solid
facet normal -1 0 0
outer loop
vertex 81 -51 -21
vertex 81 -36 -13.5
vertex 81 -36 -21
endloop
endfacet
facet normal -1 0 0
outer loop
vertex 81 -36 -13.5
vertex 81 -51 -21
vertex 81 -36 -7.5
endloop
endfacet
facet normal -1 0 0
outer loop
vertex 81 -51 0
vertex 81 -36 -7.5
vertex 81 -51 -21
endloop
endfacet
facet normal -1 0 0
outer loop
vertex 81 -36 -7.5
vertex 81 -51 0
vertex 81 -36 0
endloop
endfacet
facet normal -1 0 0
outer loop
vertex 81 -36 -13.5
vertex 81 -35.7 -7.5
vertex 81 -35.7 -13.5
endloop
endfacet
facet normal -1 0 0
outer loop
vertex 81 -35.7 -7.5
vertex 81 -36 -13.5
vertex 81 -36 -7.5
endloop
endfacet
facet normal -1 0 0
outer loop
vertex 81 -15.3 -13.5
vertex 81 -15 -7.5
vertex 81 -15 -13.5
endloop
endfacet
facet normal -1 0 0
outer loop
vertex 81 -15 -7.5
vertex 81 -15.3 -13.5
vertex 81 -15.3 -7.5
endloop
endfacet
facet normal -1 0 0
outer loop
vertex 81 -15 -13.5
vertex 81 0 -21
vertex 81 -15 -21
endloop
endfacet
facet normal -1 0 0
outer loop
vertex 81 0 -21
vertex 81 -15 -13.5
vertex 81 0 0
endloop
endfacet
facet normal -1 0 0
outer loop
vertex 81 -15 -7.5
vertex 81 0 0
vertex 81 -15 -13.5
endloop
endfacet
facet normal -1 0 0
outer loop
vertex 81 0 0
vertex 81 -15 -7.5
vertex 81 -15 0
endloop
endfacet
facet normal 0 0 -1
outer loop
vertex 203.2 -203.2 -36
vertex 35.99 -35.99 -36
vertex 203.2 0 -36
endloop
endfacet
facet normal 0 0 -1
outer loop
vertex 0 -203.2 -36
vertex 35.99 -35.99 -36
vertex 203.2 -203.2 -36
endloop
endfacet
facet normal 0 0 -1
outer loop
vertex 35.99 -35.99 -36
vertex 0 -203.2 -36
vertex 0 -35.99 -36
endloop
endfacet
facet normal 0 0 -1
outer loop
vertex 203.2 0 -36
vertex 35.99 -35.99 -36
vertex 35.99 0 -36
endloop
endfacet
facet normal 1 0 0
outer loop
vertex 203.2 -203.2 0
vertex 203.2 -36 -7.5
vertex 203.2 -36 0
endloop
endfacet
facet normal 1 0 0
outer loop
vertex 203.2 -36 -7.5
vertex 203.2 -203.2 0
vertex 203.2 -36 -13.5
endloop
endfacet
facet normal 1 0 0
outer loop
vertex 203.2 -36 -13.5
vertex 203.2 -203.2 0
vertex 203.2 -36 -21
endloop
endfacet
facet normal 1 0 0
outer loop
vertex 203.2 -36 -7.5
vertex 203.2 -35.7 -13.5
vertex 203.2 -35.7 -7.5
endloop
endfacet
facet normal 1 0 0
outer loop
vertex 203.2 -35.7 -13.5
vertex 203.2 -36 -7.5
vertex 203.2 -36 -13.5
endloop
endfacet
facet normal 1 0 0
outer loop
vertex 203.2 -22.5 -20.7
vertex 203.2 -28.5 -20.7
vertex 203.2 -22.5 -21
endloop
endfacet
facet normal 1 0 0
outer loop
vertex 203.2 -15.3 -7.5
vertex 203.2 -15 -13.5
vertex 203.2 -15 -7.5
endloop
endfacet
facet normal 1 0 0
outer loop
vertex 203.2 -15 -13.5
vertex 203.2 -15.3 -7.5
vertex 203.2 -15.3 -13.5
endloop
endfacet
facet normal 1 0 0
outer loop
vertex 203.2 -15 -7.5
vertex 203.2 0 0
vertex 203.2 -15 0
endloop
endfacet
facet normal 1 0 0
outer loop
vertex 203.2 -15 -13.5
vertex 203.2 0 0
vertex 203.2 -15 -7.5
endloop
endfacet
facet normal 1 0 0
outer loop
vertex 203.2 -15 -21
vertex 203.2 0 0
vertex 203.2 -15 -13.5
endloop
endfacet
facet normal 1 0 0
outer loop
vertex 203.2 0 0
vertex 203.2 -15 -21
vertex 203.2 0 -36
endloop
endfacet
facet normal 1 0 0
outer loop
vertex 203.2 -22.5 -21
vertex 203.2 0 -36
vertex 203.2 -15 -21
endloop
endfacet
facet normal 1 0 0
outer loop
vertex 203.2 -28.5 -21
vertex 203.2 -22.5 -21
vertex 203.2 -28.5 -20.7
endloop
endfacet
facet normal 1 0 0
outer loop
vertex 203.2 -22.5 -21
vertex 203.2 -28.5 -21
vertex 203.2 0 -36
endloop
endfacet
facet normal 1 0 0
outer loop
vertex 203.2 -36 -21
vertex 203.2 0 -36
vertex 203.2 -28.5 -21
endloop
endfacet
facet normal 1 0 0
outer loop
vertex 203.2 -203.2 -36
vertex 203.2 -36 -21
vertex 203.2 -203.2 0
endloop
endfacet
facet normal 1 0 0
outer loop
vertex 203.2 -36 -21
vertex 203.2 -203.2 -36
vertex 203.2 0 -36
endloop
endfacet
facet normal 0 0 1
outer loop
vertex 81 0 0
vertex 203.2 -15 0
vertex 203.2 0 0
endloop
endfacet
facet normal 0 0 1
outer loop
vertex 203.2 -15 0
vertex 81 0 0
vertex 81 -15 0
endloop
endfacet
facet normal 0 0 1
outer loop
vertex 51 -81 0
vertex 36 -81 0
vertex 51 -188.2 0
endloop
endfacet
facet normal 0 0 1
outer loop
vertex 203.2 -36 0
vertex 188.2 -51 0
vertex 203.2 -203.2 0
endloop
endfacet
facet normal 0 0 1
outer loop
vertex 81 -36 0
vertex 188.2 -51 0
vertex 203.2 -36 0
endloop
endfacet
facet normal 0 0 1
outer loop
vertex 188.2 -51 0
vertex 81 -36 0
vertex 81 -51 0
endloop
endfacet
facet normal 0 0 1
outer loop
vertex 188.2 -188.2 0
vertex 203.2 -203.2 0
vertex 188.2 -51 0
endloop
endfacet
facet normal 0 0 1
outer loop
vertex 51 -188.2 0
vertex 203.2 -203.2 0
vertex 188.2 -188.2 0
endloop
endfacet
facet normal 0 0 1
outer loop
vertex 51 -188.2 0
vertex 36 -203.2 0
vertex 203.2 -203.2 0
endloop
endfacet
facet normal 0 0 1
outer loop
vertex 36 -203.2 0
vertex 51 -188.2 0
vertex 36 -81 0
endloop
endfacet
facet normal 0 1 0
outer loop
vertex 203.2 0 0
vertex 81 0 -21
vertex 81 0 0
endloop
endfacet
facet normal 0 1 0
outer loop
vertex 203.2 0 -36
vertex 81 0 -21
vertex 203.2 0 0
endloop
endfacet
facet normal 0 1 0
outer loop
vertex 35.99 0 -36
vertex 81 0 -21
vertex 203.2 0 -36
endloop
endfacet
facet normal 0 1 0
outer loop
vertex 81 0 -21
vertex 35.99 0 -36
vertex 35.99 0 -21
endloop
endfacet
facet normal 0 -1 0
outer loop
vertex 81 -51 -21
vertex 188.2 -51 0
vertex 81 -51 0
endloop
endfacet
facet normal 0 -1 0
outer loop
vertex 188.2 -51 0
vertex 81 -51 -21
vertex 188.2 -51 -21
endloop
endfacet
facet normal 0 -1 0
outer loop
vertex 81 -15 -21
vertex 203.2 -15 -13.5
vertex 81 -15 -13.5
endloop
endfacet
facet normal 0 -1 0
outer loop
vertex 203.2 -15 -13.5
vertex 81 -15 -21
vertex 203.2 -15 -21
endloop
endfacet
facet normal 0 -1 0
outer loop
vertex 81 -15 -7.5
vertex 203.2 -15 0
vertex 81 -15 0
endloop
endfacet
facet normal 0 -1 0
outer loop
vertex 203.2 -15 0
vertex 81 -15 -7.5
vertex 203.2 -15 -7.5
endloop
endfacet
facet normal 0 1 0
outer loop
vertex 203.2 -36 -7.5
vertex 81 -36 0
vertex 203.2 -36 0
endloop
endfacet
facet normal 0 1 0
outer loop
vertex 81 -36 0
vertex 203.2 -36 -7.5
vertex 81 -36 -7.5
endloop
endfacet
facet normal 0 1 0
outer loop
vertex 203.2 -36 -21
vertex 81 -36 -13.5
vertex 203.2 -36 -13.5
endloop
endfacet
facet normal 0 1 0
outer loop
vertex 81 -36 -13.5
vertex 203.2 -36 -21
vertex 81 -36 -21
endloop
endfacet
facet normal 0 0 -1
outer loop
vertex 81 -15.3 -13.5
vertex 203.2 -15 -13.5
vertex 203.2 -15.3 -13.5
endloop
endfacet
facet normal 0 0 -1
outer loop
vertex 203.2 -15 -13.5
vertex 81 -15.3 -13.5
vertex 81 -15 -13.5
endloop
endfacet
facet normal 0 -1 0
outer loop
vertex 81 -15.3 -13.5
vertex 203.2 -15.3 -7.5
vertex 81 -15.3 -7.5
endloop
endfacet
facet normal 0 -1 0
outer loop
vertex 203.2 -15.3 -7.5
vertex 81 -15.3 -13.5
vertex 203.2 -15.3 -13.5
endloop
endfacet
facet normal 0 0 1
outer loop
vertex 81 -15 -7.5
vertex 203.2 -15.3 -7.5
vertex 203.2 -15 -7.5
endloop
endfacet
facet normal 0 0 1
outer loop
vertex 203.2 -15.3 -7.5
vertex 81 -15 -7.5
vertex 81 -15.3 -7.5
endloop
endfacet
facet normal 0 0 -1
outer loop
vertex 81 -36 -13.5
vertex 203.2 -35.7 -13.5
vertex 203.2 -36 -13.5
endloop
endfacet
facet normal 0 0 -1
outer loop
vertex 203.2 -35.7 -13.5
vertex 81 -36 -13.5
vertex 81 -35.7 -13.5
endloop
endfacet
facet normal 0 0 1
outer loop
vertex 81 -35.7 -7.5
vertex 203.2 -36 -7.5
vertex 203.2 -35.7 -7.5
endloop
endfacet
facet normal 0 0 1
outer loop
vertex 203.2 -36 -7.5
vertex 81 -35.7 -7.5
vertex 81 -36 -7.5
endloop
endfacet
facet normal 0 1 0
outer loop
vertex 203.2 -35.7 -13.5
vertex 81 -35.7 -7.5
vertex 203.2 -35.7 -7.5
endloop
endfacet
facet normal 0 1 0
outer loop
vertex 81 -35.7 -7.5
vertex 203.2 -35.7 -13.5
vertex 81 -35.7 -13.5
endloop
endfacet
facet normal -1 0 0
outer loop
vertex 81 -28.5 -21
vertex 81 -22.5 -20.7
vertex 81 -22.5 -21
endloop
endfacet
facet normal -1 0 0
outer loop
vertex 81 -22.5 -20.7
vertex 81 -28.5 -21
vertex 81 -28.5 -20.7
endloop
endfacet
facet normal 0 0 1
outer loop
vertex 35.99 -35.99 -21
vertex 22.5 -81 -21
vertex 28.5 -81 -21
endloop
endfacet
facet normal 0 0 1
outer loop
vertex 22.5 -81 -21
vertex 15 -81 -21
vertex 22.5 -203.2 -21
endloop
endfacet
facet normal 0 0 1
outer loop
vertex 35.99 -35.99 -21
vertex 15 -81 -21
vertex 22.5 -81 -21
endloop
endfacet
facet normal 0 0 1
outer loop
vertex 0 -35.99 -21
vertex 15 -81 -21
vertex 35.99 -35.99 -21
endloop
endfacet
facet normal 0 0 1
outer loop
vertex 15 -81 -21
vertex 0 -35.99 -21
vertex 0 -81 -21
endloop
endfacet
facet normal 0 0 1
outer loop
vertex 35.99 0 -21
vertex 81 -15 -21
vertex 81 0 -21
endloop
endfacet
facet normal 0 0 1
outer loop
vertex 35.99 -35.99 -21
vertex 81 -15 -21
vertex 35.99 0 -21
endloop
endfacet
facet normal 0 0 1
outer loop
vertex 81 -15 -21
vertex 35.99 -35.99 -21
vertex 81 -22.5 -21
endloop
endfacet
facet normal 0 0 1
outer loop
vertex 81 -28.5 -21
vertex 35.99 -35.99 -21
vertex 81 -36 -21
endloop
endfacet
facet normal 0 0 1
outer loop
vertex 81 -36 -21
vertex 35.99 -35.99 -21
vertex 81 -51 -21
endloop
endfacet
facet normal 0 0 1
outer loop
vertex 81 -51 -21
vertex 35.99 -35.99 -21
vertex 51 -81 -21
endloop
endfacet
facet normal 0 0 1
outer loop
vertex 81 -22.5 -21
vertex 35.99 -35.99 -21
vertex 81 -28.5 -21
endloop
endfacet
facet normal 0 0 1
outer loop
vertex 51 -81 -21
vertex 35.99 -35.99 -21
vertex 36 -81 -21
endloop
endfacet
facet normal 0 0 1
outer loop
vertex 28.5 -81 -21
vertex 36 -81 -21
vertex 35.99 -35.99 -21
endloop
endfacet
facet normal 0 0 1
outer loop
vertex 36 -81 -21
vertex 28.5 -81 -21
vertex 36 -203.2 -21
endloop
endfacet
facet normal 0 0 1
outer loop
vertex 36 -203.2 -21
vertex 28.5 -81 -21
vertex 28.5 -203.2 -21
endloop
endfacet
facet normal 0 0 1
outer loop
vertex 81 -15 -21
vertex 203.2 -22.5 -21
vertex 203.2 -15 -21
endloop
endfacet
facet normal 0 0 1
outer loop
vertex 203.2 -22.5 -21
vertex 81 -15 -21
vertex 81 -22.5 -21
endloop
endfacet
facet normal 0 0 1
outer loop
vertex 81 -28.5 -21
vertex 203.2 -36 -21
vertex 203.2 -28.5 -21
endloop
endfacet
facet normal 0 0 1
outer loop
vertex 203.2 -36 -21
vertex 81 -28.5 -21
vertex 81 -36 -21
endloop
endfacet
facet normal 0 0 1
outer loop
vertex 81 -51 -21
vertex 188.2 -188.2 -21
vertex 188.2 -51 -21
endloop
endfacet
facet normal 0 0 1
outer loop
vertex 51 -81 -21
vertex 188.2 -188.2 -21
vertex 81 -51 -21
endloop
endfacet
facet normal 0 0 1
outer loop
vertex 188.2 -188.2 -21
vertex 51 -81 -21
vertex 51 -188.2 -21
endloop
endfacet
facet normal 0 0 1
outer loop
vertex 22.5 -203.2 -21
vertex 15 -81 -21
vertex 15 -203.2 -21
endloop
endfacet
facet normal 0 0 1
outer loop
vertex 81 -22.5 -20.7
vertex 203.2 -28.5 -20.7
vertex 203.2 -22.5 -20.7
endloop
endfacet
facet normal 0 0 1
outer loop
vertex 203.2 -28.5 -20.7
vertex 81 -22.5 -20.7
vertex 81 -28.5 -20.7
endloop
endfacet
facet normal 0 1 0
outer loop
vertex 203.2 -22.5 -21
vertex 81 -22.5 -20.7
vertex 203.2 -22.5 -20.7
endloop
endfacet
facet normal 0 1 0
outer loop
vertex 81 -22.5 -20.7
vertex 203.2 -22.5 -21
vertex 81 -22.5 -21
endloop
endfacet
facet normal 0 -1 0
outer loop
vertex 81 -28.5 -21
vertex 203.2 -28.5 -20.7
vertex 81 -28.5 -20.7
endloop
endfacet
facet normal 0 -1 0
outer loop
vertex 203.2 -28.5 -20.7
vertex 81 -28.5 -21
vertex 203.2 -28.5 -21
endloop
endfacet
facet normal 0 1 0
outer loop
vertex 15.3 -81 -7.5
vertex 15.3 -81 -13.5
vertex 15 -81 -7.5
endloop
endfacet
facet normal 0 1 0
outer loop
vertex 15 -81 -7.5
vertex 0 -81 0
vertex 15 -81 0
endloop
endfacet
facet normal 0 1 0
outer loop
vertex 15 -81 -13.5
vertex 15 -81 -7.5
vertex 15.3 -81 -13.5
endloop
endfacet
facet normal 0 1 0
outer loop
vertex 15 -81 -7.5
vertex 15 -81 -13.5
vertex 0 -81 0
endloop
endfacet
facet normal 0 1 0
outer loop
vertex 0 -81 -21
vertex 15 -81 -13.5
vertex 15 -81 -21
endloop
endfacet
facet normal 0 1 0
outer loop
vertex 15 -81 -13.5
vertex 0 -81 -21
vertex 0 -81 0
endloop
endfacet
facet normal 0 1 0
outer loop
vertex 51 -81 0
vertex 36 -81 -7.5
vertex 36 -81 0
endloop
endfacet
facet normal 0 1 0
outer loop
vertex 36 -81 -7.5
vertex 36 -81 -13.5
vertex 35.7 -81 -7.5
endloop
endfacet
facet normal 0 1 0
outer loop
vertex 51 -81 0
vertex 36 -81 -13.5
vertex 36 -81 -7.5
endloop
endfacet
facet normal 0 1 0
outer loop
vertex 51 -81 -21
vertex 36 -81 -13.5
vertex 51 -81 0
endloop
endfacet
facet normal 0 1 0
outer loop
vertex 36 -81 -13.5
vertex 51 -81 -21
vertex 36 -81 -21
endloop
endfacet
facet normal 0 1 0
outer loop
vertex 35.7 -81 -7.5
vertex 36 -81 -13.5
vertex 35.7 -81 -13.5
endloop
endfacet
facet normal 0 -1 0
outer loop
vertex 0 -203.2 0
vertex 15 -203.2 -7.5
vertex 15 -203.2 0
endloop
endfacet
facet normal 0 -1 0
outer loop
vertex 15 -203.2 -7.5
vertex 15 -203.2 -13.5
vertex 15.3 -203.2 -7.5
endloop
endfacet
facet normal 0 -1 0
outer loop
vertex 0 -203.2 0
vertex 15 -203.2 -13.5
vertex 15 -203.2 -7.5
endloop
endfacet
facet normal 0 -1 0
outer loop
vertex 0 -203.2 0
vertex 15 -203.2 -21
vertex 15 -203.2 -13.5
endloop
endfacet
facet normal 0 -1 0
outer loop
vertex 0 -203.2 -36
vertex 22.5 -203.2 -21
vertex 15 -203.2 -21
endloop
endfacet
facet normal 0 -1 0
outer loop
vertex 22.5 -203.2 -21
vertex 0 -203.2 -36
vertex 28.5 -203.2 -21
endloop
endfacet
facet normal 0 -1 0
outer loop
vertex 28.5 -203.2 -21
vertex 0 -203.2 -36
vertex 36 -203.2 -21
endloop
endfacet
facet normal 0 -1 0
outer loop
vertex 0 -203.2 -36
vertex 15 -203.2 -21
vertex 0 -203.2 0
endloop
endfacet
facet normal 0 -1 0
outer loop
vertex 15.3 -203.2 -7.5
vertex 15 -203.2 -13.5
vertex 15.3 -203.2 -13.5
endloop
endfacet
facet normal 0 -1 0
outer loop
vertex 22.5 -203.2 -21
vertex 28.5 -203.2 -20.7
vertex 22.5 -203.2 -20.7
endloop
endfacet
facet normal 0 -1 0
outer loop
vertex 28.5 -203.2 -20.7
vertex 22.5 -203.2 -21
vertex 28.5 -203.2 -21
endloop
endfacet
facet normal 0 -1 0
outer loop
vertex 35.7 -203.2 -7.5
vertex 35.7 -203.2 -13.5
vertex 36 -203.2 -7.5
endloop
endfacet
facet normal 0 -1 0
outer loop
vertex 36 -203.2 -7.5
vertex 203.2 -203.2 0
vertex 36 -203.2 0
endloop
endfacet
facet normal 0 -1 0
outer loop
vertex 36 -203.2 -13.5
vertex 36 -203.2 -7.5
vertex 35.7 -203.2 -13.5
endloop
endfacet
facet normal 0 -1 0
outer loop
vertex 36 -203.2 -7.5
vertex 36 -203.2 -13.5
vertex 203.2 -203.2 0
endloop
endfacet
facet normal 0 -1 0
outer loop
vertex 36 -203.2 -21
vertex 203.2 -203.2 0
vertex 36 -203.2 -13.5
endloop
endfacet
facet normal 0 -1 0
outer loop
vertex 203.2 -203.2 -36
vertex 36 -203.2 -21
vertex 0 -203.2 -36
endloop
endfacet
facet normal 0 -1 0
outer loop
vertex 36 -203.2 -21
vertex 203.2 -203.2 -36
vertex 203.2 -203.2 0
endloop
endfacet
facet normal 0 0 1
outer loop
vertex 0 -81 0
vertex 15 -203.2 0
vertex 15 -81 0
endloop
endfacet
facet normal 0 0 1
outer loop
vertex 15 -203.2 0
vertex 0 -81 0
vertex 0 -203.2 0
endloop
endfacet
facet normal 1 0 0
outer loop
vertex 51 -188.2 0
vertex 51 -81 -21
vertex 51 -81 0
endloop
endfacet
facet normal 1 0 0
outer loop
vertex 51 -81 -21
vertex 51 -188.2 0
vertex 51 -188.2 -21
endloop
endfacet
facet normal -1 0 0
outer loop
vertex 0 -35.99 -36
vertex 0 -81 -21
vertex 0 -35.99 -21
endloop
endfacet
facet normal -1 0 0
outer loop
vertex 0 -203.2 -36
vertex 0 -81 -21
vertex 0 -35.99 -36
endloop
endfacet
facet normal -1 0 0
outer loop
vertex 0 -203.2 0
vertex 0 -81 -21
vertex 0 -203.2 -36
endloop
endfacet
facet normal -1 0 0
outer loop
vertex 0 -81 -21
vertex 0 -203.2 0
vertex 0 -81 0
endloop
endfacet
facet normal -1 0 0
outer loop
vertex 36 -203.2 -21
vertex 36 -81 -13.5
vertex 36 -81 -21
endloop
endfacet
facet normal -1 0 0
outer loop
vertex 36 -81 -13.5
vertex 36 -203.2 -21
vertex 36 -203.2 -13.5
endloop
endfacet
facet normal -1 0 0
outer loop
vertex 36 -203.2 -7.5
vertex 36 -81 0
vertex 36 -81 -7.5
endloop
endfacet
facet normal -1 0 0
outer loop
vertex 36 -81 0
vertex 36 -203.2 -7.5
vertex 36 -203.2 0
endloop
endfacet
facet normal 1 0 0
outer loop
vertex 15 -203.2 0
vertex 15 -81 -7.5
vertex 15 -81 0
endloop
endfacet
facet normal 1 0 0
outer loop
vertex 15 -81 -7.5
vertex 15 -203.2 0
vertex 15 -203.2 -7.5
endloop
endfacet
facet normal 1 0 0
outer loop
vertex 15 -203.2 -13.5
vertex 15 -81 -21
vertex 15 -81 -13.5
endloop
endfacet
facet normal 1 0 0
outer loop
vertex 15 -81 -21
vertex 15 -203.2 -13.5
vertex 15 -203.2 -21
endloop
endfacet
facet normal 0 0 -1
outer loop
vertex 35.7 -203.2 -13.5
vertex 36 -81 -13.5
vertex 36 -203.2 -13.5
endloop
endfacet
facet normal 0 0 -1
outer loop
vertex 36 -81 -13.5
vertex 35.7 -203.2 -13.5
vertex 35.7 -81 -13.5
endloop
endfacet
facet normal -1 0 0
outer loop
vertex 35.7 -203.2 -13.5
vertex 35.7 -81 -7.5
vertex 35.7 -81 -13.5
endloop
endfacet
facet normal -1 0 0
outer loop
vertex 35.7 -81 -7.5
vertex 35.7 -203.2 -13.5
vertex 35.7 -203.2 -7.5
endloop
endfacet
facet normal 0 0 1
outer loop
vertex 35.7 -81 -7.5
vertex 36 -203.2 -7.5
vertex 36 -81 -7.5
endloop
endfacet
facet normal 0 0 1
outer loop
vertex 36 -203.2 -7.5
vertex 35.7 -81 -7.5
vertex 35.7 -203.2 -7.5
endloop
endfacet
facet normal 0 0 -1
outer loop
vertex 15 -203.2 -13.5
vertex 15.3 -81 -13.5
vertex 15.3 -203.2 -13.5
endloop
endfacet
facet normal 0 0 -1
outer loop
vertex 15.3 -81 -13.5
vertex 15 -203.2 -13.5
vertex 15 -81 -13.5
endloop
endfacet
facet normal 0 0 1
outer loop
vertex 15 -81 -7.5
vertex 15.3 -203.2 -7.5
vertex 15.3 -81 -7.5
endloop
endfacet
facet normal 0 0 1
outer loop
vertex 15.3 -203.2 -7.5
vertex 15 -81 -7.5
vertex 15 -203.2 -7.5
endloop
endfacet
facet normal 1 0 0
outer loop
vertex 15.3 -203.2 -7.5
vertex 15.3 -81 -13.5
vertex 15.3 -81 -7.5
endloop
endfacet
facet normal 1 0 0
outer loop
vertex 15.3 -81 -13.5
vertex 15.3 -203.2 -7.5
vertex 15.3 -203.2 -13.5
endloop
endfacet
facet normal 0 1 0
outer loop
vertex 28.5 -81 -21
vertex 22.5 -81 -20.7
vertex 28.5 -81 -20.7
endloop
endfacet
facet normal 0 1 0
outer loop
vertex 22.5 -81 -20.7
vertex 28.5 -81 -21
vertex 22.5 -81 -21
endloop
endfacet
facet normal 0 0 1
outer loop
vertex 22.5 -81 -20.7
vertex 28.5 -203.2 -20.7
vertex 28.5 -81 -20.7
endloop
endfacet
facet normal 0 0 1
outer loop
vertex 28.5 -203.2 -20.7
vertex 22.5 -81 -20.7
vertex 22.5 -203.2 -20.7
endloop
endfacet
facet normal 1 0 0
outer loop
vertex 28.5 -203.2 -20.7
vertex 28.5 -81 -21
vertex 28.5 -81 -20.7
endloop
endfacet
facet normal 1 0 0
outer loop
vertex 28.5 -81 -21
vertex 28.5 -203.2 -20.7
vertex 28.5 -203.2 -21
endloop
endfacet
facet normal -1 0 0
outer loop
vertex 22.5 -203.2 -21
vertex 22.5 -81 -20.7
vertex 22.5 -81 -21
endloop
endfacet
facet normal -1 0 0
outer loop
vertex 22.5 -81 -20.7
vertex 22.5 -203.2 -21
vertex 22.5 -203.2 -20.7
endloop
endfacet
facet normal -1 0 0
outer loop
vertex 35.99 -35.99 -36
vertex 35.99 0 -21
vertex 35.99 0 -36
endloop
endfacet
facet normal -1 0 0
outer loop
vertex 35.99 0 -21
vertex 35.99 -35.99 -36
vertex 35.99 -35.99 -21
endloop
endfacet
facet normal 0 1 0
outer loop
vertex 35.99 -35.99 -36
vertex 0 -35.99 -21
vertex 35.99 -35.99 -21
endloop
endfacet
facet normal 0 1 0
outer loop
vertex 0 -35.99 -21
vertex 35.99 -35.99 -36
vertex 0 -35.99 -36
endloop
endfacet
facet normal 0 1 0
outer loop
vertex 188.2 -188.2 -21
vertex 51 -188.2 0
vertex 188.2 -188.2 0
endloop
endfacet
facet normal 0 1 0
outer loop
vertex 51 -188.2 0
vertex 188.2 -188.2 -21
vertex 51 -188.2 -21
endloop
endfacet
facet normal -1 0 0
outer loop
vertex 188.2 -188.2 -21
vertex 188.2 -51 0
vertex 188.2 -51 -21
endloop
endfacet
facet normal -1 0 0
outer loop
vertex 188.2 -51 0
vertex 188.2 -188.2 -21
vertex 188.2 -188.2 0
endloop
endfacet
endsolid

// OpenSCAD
in = 25.4;
cm = 10;
mm = 1;

// params
wall_thickness = 15*mm;
corner_offset = 30*mm; // clearance due to corner braces

platform_width = 8*in;
platform_length = 8*in;
platform_thickness = wall_thickness;
platform_mirror = 0; // 1 to flip horizontally

// constants
2020_width = 21*mm;
2020_center_width = 6*mm;
2020_center_depth = .3*mm;

outer_width = 2020_width + wall_thickness*2;
outer_height = 2020_width + wall_thickness;

module 2020_hug(length) {
    difference() {
        // tube
        cube(size=[length, outer_width, outer_height]);

        // subtract where 2020 goes
        translate([-0.01, wall_thickness, -0.01])
        cube(size=[length+0.02, 2020_width, 2020_width+0.02]);
    }

    // outside snap indent
    translate([0, wall_thickness, 2020_width/2-2020_center_width/2])
    cube(size=[length,2020_center_depth,2020_center_width]);
    
    // inside snap
    translate([0, outer_width-wall_thickness-2020_center_depth, 2020_width/2-2020_center_width/2])
    cube(size=[length,2020_center_depth,2020_center_width]);
    
    // top snap
    translate([0, wall_thickness+2020_width/2-2020_center_width/2, 2020_width-2020_center_depth])
    cube(size=[length,2020_center_width,2020_center_depth]);
}

module top_platform() {
    // top flat part
    translate([0, 0, 2020_width])
    difference() {
        cube(size=[platform_width, platform_length, platform_thickness]);

        // remove where vertical 2020+corner brace goes
        translate([-0.01, -0.01, -0.01])
        cube(size=[2020_width+wall_thickness, 2020_width+wall_thickness, outer_height+platform_thickness+0.02]);
    }

    // extra support around the outside perimeter
    translate([outer_width, platform_length-wall_thickness, 0])
    cube([platform_width-outer_width, wall_thickness, outer_height]);

    translate([platform_width-wall_thickness, outer_width, 0])
    cube([wall_thickness, platform_length-outer_width, outer_height]);
}

rotate([180,0,0])
mirror([platform_mirror, 0, 0]) {
    translate([outer_width+corner_offset, 0, 0])
    2020_hug(platform_width-outer_width-corner_offset);

    translate([outer_width, outer_width+corner_offset, 0])
    rotate([0, 0, 90])
    2020_hug(platform_length-outer_width-corner_offset);

    top_platform();
}
